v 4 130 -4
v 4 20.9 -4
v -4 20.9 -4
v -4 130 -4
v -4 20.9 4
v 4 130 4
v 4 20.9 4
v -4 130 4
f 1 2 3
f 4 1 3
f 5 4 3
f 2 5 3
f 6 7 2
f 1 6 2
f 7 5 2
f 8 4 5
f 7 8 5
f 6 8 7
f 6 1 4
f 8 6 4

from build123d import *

# Parameters (mm, degrees)
SKETCH_34_W         = 44.1
SKETCH_34_H         = 35
EXTRUDE_1_DEPTH     = 20.9
SKETCH_35_W         = 8
SKETCH_35_H         = 8
EXTRUDE_2_DEPTH     = 109.1
SKETCH_36_W         = 3
SKETCH_36_H         = 3
EXTRUDE_3_DEPTH     = 109
SKETCH_37_W         = 130
SKETCH_37_H         = 130
CUT_EXTRUDE_1_DEPTH = 110
SKETCH_38_W         = 130
SKETCH_38_H         = 130
CUT_EXTRUDE_2_DEPTH = 21.9


with BuildPart() as part:
    # ｽｹｯﾁ34 → ﾎﾞｽ - 押し出し1 (new body)
    with BuildSketch(Plane(origin=(0, 0, 0), x_dir=(1, 0, 0), z_dir=(0, 1, 0))):
        Rectangle(SKETCH_34_W, SKETCH_34_H)
    extrude(amount=EXTRUDE_1_DEPTH)

    # ｽｹｯﾁ35 → ﾎﾞｽ - 押し出し2 (add)
    with BuildSketch(Plane(origin=(0, 20.9, 0), x_dir=(1, 0, 0), z_dir=(0, 1, 0))):
        Rectangle(SKETCH_35_W, SKETCH_35_H)
    extrude(amount=EXTRUDE_2_DEPTH)

    # ｽｹｯﾁ36 → ﾎﾞｽ - 押し出し3 (add)
    with BuildSketch(Plane(origin=(0, 130, 0), x_dir=(1, 0, 0), z_dir=(0, 1, 0))):
        Rectangle(SKETCH_36_W, SKETCH_36_H)
    extrude(amount=EXTRUDE_3_DEPTH)

    # ｽｹｯﾁ37 → ｶｯﾄ - 押し出し1 (cut, through all)
    with BuildSketch(Plane(origin=(0, 130, 0), x_dir=(1, 0, 0), z_dir=(0, 1, 0))):
        Rectangle(SKETCH_37_W, SKETCH_37_H)
    extrude(amount=CUT_EXTRUDE_1_DEPTH, mode=Mode.SUBTRACT)

    # ｽｹｯﾁ38 → ｶｯﾄ - 押し出し2 (cut, through all)
    with BuildSketch(Plane(origin=(0, 20.9, 0), x_dir=(1, 0, 0), z_dir=(0, 1, 0))):
        Rectangle(SKETCH_38_W, SKETCH_38_H)
    extrude(amount=-CUT_EXTRUDE_2_DEPTH, mode=Mode.SUBTRACT)


solid = part.part
